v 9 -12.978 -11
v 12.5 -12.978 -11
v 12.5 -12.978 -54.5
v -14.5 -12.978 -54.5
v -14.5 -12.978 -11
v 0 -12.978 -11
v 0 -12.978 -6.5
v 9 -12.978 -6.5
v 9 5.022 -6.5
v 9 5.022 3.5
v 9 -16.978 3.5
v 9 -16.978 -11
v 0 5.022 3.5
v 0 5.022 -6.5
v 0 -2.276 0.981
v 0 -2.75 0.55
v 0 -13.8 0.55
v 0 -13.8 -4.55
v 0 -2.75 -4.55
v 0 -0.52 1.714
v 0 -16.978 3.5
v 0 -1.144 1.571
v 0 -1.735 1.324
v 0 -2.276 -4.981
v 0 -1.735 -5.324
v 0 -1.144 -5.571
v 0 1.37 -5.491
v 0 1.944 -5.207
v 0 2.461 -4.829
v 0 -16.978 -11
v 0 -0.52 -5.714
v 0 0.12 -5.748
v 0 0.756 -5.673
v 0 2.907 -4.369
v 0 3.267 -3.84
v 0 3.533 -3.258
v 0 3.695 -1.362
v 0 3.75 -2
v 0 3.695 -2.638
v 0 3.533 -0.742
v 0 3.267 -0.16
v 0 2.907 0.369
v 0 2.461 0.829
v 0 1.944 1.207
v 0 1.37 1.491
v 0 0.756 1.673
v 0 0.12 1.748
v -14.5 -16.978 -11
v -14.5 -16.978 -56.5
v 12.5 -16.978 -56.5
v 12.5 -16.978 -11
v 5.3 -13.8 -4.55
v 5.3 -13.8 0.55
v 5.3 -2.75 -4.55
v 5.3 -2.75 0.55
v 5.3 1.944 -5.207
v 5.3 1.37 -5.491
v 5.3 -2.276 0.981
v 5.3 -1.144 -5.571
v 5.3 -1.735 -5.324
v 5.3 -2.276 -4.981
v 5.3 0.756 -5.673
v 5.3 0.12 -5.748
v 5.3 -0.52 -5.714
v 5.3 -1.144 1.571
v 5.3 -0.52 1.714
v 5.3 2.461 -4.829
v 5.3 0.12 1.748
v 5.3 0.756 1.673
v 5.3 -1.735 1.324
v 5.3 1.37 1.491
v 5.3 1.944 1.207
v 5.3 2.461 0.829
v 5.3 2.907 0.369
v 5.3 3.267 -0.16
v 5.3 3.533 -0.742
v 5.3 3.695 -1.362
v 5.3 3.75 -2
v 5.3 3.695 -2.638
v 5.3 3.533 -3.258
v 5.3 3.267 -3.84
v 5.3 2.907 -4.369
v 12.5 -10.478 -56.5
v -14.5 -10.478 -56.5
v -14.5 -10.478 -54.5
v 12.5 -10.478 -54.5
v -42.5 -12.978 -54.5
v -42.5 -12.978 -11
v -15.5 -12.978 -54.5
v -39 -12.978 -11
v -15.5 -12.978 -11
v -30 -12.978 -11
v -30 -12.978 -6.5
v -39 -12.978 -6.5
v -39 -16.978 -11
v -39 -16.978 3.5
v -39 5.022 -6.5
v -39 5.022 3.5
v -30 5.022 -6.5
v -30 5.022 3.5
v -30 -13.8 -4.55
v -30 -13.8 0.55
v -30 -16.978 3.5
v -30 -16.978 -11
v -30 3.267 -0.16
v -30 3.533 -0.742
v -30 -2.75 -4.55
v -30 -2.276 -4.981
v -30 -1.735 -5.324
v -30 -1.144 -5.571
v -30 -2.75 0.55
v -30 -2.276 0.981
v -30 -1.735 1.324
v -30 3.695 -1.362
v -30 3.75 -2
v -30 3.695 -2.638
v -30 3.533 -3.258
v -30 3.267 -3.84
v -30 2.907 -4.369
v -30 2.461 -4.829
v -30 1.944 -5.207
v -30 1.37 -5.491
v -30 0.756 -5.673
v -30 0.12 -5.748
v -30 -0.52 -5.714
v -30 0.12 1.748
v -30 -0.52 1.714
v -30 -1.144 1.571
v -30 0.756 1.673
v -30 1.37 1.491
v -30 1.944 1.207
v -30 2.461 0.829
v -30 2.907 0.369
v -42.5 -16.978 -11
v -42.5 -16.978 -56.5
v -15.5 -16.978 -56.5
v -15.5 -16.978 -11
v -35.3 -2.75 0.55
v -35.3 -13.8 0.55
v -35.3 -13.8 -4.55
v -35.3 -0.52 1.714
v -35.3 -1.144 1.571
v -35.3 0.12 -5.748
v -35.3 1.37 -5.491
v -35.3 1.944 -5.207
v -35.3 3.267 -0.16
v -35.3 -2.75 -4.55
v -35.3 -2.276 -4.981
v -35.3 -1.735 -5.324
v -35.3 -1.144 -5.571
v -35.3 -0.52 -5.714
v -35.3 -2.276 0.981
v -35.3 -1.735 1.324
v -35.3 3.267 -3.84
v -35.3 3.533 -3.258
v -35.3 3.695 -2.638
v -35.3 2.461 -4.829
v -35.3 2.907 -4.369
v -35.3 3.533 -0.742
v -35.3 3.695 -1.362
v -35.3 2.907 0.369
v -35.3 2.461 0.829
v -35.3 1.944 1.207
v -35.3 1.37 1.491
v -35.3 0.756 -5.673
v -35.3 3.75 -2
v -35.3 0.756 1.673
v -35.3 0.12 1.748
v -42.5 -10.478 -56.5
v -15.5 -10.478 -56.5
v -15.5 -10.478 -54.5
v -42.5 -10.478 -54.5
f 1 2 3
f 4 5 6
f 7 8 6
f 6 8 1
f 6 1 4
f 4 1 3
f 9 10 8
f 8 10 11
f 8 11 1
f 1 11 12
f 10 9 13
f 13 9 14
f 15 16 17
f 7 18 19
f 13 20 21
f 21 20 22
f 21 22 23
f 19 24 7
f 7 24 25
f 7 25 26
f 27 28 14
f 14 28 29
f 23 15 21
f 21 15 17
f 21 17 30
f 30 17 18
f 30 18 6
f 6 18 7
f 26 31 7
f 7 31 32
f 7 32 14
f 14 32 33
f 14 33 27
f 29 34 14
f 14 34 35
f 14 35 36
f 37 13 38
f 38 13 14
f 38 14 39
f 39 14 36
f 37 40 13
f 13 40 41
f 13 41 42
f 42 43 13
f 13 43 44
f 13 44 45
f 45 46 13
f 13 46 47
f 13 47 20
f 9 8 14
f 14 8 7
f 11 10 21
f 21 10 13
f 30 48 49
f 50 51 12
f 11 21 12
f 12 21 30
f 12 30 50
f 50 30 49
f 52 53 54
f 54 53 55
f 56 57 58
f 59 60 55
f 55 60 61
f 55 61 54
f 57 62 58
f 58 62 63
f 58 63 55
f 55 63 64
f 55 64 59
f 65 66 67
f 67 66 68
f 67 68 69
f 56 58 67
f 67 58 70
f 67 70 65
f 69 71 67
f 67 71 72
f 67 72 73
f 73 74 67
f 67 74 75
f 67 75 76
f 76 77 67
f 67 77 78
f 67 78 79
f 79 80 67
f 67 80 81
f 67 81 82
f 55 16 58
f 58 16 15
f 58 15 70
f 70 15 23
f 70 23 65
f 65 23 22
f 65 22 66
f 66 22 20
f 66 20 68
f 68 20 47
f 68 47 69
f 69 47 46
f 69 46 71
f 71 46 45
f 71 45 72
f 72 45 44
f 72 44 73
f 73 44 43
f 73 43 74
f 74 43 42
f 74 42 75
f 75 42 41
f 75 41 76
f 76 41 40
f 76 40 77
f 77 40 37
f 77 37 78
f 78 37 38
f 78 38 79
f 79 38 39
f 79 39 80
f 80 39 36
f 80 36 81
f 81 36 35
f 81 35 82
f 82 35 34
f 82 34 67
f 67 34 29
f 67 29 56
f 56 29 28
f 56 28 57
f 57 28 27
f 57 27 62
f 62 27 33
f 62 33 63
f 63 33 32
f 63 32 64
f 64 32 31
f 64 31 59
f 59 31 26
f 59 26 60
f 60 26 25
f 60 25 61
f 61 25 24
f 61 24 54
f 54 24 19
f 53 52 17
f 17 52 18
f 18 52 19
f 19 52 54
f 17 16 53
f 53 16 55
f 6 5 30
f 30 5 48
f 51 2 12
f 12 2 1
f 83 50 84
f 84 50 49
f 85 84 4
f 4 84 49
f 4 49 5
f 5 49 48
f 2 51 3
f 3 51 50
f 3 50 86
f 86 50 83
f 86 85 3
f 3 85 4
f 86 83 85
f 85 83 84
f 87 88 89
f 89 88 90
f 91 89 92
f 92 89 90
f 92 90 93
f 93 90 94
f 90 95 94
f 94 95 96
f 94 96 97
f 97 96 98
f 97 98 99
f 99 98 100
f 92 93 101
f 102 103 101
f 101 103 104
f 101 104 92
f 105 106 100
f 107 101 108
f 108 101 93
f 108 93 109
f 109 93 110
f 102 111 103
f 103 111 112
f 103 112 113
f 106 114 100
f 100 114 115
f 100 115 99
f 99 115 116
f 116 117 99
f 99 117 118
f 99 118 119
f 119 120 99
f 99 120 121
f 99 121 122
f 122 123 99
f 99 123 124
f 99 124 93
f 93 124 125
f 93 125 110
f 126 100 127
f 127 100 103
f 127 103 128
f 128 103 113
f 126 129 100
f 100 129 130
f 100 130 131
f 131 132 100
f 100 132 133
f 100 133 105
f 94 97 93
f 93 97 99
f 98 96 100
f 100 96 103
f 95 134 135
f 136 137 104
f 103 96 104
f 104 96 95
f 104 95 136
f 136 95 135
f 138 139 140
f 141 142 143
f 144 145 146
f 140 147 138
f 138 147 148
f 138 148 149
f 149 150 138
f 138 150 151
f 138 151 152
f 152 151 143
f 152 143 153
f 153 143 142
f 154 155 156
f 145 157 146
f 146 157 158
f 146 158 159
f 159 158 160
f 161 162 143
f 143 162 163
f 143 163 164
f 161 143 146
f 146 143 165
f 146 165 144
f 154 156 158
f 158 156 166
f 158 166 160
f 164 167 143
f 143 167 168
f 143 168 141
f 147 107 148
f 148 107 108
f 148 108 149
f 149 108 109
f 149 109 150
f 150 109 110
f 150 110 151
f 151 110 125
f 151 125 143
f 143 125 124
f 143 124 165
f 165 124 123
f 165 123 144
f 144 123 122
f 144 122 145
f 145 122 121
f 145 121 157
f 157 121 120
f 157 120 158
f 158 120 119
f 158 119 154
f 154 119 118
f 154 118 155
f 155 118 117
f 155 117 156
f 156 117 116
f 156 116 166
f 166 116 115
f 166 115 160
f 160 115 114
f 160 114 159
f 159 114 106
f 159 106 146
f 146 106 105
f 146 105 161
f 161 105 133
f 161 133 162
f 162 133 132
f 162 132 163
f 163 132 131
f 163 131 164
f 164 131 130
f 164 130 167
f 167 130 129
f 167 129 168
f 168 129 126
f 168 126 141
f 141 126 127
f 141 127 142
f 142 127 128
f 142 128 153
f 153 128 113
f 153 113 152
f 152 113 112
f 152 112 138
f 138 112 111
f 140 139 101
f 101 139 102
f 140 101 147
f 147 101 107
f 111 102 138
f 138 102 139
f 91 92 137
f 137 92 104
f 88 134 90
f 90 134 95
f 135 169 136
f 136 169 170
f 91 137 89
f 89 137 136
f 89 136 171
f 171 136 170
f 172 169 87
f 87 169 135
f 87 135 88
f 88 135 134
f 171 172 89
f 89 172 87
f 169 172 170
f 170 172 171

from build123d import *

# Parameters (mm, degrees)
SKETCH1_W                = 10
SKETCH1_H                = 18
BOSS_EXTRUDE1_DEPTH      = 9
SKETCH1_15_R             = 3.75
SKETCH1_15_W             = 5.1
SKETCH1_15_H             = 13.8
CUT_EXTRUDE1_DEPTH       = 5.3
BOSS_EXTRUDE2_DEPTH      = 12.5
BOSS_EXTRUDE2_DEPTH_BACK = 14.5
SKETCH1_18_W             = 45.5
SKETCH1_18_H             = 4
SKETCH5_W                = 27
SKETCH5_H                = 2
BOSS_EXTRUDE3_DEPTH      = 2.5


with BuildPart() as part:
    # Sketch1 → Boss-Extrude1 (new body)
    with BuildSketch(Plane(origin=(0, 0, 0), x_dir=(0, 0, -1), z_dir=(1, 0, 0))):
        with Locations((1.5, -3.978289551)):
            Rectangle(SKETCH1_W, SKETCH1_H)
        Polygon((6.5, -12.978289551), (-3.5, -12.978289551), (-3.5, -16.978289551), (11, -16.978289551), (11, -12.978289551), align=None)
    extrude(amount=BOSS_EXTRUDE1_DEPTH)

    # Sketch1<15> → Cut-Extrude1 (cut)
    with BuildSketch(Plane(origin=(0, 0, 0), x_dir=(0, 0, -1), z_dir=(1, 0, 0))):
        with Locations((2, 0)):
            Circle(SKETCH1_15_R)
        with Locations((2, -6.9)):
            Rectangle(SKETCH1_15_W, SKETCH1_15_H)
    extrude(amount=CUT_EXTRUDE1_DEPTH, mode=Mode.SUBTRACT)

    # Sketch1<18> → Boss-Extrude2 (add, two sides: drawn at the far end of the back side and taken through both)
    with BuildSketch(Plane(origin=(0, 0, 0), x_dir=(0, 0, -1), z_dir=(1, 0, 0)).offset(-BOSS_EXTRUDE2_DEPTH_BACK)):
        with Locations((33.75, -14.978289551)):
            Rectangle(SKETCH1_18_W, SKETCH1_18_H)
    extrude(amount=BOSS_EXTRUDE2_DEPTH + BOSS_EXTRUDE2_DEPTH_BACK)

    # Sketch5 → Boss-Extrude3 (add)
    with BuildSketch(Plane(origin=(0, -12.978289551, 0), x_dir=(1, 0, 0), z_dir=(0, 1, 0))):
        with Locations((-1, 55.5)):
            Rectangle(SKETCH5_W, SKETCH5_H)
    extrude(amount=BOSS_EXTRUDE3_DEPTH)


with BuildPart() as body_2:
    # Mirror3: mirrored copy
    add(part.part.mirror(Plane(origin=(-15, 0, 0), x_dir=(0, 0, 1), z_dir=(1, 0, 0))))


solid = Compound([part.part, body_2.part])
